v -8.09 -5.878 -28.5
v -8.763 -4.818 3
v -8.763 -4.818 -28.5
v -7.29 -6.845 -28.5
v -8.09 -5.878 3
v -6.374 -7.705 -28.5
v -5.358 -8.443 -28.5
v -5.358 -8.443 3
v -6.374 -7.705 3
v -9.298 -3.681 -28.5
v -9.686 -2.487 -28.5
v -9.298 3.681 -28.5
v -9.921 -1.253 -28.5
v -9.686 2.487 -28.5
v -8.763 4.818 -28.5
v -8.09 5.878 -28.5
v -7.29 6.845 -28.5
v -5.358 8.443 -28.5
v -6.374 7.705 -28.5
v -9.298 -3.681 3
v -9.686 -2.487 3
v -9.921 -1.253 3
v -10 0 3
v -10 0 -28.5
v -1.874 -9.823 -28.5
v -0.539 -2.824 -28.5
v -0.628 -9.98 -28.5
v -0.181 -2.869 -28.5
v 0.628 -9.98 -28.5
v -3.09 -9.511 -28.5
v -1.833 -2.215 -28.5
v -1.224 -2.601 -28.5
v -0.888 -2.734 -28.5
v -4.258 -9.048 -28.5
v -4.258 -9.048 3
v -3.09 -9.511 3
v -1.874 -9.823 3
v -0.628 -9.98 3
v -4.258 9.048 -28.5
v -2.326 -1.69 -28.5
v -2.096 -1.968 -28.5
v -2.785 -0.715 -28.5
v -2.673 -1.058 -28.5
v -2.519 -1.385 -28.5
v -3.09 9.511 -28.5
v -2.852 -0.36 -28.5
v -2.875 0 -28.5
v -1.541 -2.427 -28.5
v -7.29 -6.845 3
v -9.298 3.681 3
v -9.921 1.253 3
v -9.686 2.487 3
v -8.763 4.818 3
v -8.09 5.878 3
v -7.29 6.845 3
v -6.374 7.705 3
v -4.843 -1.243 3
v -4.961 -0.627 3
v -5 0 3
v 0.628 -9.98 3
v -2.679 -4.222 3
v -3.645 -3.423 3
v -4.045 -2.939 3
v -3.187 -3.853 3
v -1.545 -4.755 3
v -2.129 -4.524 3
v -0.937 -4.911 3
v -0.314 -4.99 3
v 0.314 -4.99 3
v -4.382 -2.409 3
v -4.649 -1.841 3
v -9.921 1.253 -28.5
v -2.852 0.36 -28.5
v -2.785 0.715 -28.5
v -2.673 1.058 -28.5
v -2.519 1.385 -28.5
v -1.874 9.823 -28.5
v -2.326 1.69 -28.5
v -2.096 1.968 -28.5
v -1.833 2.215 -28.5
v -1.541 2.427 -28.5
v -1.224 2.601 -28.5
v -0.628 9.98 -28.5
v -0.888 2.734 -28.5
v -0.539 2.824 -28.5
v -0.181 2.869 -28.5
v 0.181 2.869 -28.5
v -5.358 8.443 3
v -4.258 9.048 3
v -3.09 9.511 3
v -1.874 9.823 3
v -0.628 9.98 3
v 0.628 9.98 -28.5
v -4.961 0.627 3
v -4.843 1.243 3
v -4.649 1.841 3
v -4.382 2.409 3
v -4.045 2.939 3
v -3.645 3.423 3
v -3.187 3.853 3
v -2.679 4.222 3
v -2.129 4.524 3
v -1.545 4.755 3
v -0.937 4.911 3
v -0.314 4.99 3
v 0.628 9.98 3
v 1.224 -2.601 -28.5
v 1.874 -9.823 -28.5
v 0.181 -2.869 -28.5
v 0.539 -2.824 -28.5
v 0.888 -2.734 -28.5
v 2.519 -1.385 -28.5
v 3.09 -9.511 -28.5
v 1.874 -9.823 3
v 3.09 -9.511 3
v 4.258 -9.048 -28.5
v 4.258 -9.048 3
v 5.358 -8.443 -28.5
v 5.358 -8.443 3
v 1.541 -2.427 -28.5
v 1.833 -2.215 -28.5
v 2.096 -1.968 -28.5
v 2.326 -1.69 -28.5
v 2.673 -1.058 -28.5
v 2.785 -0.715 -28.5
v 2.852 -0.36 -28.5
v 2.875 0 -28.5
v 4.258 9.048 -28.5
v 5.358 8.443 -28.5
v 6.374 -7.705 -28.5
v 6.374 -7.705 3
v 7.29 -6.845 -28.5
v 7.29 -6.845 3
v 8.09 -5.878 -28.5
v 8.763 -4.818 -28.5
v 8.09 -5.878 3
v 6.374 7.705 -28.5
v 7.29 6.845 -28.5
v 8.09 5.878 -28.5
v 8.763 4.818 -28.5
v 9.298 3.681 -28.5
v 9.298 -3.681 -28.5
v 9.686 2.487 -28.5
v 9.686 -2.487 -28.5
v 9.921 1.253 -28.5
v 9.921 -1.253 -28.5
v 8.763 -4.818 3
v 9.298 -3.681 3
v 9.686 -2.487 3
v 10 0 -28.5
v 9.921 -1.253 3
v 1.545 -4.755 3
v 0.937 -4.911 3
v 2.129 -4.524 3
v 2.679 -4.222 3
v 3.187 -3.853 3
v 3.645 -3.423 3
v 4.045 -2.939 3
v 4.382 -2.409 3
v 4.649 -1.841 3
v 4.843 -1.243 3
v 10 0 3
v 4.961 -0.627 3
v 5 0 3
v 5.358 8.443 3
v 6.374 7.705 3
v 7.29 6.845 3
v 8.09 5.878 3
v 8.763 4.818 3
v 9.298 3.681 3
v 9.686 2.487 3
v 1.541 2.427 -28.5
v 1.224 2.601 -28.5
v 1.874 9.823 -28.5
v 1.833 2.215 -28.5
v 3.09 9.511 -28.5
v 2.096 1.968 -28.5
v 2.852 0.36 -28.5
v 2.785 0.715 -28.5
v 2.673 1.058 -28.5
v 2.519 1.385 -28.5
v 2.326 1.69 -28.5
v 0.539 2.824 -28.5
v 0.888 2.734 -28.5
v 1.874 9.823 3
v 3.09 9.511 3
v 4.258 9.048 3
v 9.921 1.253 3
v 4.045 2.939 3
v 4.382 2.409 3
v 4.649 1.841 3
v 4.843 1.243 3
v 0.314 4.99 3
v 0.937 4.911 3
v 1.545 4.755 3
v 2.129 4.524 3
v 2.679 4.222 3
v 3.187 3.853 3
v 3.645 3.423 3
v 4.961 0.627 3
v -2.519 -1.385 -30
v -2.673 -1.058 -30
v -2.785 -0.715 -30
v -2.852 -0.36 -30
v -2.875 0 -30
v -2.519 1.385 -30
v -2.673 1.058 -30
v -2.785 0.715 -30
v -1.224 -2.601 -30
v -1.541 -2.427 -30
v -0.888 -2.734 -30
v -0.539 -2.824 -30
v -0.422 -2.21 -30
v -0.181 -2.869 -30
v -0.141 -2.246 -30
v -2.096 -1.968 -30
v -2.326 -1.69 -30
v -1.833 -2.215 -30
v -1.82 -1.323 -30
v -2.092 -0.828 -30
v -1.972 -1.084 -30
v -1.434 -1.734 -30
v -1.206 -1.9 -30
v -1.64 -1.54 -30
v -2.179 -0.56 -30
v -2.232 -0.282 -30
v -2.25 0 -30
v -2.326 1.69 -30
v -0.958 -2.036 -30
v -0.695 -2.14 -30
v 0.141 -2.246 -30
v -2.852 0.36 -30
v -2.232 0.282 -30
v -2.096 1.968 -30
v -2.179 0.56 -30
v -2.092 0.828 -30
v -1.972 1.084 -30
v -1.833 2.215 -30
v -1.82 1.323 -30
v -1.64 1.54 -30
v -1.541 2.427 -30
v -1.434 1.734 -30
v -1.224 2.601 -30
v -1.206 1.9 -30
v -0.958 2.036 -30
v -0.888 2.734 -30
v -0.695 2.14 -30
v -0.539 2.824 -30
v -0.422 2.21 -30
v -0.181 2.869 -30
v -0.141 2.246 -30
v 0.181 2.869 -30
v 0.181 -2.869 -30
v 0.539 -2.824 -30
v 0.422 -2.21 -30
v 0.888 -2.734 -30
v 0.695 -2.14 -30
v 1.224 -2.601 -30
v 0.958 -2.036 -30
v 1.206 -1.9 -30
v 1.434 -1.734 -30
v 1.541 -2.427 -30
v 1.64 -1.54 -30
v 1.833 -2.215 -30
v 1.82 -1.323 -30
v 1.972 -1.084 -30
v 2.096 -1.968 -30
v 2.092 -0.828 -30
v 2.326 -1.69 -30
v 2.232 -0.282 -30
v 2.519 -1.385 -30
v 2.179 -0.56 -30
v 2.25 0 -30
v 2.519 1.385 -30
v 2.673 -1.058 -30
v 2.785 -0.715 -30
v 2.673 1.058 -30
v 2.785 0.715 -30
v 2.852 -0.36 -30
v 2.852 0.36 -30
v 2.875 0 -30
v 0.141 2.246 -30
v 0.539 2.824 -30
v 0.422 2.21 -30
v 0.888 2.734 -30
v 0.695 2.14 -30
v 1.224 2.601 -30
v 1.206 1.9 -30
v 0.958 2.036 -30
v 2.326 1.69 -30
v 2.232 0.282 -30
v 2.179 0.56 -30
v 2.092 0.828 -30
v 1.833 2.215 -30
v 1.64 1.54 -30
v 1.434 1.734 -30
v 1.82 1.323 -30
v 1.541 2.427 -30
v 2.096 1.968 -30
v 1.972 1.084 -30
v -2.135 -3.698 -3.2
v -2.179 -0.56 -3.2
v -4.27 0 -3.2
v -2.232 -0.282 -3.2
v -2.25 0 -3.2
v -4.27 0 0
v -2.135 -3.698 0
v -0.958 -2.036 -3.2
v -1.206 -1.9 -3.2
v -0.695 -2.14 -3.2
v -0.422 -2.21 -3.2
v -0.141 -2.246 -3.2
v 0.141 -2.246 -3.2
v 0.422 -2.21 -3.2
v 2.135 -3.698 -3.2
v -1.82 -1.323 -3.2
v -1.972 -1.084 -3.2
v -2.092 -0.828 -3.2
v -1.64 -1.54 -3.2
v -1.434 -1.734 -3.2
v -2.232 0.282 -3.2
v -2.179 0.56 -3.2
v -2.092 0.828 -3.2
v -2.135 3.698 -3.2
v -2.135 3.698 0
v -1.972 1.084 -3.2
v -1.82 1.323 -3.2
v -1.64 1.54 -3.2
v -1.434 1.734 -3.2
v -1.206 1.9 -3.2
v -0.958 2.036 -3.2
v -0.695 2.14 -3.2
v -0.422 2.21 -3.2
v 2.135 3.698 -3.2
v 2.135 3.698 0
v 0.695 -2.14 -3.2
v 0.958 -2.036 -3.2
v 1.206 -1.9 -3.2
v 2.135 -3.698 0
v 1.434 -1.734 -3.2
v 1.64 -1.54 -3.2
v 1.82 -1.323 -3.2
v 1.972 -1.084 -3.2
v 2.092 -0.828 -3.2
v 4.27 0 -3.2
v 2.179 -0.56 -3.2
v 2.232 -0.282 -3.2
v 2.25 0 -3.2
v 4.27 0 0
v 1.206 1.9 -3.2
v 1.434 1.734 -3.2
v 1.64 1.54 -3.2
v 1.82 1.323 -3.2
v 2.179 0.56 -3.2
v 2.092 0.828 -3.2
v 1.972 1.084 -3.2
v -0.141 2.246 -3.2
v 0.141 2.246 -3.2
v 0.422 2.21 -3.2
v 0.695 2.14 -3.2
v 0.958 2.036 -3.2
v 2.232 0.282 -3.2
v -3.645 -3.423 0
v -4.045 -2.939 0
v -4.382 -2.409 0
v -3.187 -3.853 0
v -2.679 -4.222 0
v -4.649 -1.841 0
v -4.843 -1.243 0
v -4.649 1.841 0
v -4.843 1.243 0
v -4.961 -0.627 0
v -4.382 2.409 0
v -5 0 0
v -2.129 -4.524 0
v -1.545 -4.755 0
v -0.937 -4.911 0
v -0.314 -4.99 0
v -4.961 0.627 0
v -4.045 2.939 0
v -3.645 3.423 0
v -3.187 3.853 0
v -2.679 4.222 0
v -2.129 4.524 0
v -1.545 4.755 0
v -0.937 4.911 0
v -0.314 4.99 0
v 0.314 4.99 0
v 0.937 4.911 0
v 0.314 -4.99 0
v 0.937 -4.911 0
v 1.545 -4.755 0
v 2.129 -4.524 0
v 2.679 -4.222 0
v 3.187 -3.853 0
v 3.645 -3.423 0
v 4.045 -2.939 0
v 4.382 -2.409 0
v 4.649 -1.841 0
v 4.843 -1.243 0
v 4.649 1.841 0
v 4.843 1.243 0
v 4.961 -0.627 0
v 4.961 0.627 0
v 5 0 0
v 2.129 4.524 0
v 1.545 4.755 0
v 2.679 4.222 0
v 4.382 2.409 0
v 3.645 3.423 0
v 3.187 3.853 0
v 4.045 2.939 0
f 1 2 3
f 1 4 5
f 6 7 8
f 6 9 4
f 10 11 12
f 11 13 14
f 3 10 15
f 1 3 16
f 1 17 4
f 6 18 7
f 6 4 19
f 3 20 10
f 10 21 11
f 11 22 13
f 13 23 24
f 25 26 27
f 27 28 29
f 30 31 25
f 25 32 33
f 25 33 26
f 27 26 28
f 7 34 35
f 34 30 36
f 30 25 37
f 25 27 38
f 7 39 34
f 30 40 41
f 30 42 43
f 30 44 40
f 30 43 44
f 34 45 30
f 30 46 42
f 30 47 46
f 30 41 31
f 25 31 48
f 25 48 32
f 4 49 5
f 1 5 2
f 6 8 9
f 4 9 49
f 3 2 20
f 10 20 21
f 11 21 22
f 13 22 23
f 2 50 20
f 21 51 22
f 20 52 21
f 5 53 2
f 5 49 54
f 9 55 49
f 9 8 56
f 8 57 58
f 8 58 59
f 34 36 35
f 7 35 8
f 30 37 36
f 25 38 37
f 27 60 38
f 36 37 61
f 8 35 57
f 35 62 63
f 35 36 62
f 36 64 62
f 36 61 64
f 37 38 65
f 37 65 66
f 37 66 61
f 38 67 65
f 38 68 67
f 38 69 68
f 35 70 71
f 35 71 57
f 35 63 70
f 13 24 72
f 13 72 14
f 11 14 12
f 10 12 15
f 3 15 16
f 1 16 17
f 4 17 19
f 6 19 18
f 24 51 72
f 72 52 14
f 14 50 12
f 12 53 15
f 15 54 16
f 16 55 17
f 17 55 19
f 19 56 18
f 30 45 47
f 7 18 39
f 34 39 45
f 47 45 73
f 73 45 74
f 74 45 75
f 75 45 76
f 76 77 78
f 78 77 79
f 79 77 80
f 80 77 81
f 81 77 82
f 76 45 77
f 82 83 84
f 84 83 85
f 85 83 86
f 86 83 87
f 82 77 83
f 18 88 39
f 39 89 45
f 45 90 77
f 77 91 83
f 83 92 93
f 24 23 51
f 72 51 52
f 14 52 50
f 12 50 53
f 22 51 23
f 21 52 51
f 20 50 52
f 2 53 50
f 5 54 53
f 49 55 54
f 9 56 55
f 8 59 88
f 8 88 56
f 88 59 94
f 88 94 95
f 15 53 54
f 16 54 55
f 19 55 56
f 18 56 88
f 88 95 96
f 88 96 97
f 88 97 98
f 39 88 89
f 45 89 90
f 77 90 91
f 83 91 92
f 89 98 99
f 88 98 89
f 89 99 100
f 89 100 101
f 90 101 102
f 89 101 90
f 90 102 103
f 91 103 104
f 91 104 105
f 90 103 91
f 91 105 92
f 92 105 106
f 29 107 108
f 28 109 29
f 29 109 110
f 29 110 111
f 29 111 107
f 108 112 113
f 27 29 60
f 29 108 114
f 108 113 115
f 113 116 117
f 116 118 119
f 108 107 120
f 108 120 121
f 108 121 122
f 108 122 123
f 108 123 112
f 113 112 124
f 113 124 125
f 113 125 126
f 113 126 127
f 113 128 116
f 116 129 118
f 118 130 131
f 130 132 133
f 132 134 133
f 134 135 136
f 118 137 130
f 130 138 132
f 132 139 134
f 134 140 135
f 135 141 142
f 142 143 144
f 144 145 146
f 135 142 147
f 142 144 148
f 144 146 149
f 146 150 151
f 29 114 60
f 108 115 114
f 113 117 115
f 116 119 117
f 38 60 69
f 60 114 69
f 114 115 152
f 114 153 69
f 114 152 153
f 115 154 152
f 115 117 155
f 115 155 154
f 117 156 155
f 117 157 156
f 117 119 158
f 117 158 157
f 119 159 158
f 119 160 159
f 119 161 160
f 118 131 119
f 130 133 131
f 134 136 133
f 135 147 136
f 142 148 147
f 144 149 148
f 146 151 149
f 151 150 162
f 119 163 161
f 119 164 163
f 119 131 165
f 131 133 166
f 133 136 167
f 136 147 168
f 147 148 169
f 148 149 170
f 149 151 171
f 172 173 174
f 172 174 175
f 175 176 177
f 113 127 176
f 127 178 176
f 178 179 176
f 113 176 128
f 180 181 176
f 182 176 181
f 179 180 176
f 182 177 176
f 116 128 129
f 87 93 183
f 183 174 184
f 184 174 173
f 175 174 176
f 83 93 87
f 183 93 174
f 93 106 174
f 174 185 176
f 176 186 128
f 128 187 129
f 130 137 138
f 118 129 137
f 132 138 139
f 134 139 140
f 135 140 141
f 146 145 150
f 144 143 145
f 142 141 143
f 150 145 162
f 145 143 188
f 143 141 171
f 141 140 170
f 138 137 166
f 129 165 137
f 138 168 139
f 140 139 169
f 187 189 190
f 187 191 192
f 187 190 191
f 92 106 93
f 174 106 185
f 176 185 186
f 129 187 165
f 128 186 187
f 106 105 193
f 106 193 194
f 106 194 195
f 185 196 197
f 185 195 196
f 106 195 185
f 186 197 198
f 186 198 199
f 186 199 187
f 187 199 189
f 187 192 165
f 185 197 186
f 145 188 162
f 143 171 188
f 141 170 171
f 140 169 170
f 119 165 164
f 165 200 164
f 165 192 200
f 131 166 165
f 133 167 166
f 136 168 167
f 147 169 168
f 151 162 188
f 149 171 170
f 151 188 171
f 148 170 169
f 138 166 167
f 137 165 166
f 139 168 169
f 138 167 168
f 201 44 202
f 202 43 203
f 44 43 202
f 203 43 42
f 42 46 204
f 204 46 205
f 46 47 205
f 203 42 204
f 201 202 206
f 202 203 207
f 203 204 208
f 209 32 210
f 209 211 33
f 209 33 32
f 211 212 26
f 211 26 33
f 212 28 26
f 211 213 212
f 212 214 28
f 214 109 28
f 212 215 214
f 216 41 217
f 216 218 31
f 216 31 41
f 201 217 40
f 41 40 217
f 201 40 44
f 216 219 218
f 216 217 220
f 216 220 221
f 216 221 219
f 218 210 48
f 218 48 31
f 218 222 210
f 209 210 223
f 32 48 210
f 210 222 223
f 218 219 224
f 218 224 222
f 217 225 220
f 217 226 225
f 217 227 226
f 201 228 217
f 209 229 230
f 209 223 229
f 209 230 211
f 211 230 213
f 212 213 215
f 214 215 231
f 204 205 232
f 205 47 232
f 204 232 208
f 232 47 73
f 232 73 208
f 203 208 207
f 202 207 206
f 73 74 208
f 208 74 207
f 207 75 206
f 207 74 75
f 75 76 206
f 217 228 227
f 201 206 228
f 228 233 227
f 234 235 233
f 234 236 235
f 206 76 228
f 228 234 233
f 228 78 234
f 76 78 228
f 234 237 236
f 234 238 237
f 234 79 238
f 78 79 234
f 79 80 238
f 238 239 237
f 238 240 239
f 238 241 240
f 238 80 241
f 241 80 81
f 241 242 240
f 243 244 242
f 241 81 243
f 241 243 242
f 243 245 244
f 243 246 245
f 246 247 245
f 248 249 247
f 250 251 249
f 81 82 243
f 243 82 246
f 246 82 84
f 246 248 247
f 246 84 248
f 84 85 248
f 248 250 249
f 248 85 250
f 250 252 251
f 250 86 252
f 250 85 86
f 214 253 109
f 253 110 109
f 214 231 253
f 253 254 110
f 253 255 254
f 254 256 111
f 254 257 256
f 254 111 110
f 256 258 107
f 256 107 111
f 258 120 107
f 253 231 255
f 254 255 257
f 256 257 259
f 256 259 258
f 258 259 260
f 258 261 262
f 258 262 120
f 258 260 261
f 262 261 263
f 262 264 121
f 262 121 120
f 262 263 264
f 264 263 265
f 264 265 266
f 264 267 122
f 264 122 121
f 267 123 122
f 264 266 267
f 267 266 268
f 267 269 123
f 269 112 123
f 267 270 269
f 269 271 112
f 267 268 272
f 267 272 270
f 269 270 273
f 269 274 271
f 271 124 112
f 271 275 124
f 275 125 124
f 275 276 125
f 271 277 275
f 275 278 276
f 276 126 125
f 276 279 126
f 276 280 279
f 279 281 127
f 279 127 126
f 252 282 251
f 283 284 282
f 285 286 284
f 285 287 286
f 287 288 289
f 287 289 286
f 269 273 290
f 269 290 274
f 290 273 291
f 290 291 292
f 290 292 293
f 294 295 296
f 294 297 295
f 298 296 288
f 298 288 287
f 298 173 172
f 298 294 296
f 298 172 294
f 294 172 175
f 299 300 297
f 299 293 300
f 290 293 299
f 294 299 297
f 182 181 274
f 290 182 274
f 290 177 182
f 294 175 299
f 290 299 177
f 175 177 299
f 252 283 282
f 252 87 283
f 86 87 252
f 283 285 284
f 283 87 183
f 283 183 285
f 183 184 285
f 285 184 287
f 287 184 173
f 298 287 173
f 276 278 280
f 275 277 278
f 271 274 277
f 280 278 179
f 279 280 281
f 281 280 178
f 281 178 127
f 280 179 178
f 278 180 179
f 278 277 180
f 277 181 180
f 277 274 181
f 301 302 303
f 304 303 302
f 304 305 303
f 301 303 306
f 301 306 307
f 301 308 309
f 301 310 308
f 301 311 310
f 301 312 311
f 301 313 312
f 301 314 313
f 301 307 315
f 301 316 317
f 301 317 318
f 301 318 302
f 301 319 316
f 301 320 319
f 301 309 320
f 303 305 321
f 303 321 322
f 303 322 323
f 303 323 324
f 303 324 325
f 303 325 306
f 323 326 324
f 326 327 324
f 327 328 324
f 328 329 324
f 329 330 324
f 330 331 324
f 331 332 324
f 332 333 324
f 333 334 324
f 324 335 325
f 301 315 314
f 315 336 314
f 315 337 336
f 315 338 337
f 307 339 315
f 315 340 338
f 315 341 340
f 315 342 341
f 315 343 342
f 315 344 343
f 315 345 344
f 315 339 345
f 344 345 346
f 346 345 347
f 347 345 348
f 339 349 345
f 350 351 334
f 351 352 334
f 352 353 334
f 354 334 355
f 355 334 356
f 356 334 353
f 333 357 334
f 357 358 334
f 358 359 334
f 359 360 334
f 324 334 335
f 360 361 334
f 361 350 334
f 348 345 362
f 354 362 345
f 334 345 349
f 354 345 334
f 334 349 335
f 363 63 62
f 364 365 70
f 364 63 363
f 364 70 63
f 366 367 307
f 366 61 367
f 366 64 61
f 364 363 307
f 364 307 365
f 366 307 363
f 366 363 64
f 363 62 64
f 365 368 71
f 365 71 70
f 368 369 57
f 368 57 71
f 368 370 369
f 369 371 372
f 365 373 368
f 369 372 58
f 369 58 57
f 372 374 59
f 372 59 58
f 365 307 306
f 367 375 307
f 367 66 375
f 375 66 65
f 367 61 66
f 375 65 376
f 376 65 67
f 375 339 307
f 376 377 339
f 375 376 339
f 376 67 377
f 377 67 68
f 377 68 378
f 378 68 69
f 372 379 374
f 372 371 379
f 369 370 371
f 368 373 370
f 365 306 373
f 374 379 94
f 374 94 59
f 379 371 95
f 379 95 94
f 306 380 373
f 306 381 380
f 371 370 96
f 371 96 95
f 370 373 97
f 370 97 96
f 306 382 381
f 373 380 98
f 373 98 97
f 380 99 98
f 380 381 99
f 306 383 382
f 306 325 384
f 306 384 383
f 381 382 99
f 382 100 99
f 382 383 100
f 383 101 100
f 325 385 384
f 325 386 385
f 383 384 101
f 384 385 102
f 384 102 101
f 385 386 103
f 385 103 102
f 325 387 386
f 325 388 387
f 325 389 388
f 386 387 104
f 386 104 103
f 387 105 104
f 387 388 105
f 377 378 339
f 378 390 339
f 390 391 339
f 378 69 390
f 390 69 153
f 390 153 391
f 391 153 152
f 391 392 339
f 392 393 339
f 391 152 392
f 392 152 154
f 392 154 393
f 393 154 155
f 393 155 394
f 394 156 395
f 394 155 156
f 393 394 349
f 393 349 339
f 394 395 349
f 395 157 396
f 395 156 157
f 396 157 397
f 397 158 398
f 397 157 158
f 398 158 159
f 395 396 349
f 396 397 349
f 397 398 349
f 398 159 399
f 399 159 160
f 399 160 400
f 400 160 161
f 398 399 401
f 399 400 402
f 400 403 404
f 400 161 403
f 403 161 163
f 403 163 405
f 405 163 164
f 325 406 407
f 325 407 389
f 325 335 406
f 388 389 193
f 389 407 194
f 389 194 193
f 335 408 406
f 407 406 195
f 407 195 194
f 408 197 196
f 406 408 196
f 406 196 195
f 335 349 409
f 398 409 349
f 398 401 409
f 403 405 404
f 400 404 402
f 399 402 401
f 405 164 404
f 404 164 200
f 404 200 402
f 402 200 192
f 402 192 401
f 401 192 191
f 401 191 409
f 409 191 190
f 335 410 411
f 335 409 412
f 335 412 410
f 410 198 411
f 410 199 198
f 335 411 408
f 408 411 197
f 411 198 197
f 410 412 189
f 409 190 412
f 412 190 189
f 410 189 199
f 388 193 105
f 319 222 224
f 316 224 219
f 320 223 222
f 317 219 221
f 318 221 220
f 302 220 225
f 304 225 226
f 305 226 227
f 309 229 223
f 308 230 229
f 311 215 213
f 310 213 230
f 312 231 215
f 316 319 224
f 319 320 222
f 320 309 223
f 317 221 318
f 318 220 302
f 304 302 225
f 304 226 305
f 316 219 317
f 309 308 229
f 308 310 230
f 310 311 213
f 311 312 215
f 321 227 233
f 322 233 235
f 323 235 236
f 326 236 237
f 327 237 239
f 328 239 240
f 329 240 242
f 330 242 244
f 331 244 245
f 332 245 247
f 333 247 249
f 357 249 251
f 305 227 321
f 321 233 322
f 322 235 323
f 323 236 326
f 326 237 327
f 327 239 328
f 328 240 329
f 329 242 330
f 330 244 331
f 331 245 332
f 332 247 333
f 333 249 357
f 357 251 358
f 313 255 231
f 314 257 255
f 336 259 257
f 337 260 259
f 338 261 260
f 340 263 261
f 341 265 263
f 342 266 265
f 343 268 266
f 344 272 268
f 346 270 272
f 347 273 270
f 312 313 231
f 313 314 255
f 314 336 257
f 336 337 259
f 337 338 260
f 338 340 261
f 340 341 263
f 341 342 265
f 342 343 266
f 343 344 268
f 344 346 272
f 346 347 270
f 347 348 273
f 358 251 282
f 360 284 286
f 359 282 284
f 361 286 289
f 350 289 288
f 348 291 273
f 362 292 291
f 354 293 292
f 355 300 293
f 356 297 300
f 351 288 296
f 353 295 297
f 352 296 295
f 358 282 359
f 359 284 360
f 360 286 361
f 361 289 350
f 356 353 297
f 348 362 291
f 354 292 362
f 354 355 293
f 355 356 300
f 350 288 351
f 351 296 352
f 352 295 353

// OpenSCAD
$fn = 50;

difference() {
	union() {
		translate(v = [0, 0, -28.5]) {
			cylinder(h = 31.5, r = 10.0);
		}
		#translate(v = [0, 0, -30.0]) {
			cylinder(h = 30, r = 2.875);
		}
	}
	union() {
		translate(v = [0, 0, 0]) {
			rotate(a = [0, 0, 0]) {
				difference() {
					union() {
						translate(v = [0, 0, -3.2]) {
							linear_extrude(height = 3.2) {
								polygon(points = [[4.2698, 0.0], [2.1349000000000005, 3.697755269078796], [-2.134899999999999, 3.6977552690787965], [-4.2698, 5.228996902999369e-16], [-2.134900000000002, -3.6977552690787956], [2.1348999999999974, -3.697755269078798]]);
							}
						}
					}
					union();
				}
			}
		}
		#cylinder(h = 3, r = 5.0);
		#translate(v = [0, 0, -100.0]) {
			cylinder(h = 200, r = 2.25);
		}
	}
}
